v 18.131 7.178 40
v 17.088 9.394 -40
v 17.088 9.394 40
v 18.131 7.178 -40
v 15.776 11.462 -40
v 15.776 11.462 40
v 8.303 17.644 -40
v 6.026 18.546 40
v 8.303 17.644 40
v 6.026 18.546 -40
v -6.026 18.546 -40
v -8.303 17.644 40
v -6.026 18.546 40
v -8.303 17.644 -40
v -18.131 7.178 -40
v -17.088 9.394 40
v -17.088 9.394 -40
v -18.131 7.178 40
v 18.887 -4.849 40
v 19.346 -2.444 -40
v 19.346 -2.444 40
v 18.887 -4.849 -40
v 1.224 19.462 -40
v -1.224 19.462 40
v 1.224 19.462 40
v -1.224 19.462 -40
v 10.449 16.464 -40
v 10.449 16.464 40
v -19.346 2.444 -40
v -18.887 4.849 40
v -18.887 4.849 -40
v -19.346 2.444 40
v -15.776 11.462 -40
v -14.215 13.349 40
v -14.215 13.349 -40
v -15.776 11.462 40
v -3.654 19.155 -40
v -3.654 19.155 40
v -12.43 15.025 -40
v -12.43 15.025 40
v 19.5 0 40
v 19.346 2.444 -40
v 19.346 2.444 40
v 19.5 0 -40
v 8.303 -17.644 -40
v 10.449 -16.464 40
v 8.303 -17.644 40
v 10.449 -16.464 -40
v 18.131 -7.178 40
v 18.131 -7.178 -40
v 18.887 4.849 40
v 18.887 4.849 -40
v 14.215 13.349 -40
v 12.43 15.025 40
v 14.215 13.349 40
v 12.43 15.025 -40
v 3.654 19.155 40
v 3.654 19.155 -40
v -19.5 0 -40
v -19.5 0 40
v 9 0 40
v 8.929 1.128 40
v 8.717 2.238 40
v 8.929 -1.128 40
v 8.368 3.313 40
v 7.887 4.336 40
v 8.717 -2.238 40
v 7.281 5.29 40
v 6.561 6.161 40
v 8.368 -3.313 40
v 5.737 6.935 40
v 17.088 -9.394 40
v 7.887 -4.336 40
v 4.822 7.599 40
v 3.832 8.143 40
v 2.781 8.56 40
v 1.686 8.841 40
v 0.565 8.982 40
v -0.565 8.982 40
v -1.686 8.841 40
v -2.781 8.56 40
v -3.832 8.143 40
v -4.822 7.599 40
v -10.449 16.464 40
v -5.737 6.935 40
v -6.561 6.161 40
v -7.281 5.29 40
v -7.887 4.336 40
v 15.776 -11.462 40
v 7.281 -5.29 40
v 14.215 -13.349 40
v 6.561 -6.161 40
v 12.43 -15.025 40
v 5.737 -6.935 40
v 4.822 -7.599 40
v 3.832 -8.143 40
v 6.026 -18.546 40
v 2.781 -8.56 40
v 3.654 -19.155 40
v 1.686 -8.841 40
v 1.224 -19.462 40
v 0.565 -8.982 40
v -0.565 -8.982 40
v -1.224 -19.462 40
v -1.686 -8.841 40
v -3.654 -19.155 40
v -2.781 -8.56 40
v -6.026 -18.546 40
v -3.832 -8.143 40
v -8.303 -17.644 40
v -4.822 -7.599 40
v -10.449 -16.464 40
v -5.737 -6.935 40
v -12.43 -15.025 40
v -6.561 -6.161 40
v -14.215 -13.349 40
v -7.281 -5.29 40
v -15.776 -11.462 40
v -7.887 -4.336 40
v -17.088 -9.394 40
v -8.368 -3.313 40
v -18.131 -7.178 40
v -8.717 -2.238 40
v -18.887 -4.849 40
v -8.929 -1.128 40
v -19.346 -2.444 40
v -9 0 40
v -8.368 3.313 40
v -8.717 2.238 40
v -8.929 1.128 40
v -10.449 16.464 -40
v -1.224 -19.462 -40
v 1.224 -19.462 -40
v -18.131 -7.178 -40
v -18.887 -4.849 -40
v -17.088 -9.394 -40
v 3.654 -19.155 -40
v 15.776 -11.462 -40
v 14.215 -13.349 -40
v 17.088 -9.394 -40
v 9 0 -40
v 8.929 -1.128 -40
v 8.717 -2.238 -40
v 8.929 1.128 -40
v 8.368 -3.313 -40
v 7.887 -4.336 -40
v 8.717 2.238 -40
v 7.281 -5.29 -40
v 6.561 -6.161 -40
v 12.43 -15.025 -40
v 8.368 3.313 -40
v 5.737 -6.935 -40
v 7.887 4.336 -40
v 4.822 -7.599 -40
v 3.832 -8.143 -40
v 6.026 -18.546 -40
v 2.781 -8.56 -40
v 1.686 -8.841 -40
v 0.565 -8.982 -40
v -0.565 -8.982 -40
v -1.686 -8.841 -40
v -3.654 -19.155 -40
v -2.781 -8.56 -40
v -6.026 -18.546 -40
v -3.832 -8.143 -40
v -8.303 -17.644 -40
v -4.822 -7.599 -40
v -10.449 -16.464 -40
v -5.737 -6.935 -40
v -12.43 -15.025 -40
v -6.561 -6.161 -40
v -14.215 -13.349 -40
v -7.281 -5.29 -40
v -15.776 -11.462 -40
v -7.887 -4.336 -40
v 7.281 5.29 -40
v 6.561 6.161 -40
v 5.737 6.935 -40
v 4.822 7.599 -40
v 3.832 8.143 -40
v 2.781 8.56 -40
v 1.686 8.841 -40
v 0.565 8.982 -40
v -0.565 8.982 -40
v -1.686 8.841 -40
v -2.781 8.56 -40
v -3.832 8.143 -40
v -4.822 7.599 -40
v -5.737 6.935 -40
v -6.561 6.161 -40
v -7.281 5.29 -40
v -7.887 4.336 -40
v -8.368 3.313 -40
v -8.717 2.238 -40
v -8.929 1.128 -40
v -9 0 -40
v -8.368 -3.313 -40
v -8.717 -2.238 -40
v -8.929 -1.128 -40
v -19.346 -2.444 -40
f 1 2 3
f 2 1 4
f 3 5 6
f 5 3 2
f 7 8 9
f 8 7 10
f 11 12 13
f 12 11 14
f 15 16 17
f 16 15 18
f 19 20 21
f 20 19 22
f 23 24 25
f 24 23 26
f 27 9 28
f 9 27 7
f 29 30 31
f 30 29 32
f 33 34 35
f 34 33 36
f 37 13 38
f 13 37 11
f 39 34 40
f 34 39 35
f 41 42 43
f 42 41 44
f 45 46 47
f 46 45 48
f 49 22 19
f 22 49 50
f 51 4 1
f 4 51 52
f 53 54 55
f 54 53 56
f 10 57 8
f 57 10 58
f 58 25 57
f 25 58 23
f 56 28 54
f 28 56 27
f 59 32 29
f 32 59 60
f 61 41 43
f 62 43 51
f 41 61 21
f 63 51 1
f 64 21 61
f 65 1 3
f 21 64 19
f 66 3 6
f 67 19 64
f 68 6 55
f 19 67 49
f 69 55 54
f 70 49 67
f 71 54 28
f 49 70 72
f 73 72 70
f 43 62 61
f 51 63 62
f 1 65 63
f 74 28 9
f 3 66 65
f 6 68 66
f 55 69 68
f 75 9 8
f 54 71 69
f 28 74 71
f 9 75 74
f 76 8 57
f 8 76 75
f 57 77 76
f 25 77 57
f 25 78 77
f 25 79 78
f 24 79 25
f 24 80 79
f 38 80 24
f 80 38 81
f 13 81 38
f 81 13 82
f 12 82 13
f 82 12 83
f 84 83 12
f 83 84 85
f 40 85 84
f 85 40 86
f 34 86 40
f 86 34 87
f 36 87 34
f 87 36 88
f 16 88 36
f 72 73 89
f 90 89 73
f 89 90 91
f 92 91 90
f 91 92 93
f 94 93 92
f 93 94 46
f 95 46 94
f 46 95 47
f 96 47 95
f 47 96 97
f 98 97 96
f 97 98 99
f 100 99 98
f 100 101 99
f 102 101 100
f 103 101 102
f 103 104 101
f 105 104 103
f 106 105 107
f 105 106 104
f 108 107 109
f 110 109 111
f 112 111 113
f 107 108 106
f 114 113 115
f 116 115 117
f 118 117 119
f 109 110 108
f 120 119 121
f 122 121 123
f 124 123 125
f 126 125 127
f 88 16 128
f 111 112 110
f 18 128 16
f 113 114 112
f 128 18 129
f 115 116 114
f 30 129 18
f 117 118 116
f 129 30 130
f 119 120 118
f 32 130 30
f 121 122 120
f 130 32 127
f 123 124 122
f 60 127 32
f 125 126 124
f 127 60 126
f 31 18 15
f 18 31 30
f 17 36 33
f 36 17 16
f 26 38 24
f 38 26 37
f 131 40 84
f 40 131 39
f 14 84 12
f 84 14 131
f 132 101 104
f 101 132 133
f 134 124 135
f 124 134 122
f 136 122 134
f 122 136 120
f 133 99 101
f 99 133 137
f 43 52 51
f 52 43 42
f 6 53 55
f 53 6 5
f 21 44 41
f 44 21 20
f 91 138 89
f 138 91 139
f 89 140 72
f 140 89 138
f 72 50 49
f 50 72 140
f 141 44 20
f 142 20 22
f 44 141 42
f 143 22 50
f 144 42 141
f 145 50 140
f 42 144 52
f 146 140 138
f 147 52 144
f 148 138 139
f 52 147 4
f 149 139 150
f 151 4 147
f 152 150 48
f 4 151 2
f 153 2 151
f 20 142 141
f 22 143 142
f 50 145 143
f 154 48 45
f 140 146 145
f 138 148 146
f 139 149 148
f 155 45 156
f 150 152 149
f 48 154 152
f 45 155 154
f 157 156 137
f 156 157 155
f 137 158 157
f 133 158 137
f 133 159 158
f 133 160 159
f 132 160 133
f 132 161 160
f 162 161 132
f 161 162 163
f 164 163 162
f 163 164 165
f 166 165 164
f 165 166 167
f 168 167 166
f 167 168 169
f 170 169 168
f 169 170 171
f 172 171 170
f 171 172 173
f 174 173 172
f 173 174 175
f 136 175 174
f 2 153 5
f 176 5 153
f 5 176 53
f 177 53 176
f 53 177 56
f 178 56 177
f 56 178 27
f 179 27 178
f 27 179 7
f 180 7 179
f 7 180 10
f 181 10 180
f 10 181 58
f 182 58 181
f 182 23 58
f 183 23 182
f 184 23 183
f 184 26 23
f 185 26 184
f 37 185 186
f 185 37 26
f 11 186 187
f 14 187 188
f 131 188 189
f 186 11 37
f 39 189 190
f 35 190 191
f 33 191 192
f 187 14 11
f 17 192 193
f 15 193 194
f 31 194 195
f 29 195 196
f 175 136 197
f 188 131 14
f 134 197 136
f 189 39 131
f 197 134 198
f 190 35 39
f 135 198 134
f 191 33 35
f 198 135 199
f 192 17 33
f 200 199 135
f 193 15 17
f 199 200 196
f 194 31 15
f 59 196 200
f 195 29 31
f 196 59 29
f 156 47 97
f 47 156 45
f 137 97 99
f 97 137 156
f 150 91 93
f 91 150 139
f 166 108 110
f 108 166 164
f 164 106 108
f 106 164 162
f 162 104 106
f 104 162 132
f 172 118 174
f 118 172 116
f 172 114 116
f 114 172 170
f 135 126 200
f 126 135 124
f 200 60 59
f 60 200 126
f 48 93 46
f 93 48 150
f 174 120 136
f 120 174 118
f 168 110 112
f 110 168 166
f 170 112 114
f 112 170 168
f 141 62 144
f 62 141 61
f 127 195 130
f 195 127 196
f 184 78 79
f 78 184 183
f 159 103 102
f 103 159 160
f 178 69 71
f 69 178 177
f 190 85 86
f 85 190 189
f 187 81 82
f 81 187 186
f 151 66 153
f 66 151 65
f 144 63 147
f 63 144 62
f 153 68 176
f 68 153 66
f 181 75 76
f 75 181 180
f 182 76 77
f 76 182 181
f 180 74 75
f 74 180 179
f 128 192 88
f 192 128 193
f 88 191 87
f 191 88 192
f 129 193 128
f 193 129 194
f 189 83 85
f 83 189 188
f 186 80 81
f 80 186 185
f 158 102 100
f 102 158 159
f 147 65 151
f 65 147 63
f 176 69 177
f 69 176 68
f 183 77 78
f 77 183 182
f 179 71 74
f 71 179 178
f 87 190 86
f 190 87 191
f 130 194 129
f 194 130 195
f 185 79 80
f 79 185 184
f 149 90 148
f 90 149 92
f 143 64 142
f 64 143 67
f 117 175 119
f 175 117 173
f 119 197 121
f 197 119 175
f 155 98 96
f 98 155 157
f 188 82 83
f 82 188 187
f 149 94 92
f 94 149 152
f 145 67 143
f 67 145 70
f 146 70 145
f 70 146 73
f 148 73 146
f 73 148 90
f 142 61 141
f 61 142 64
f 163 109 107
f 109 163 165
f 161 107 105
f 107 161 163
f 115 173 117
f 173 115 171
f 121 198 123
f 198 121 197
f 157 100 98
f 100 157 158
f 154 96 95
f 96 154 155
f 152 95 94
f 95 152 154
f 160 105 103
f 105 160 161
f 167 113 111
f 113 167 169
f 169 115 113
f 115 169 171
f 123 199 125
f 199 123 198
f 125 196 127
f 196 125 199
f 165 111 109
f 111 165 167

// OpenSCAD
$fn = 50;


difference() {
	union() {
		translate(v = [0, 0, -40.0000000000]) {
			cylinder(h = 80, r = 19.5000000000);
		}
	}
	union() {
		translate(v = [0, 0, -100.0000000000]) {
			cylinder(h = 200, r = 9);
		}
	}
}
